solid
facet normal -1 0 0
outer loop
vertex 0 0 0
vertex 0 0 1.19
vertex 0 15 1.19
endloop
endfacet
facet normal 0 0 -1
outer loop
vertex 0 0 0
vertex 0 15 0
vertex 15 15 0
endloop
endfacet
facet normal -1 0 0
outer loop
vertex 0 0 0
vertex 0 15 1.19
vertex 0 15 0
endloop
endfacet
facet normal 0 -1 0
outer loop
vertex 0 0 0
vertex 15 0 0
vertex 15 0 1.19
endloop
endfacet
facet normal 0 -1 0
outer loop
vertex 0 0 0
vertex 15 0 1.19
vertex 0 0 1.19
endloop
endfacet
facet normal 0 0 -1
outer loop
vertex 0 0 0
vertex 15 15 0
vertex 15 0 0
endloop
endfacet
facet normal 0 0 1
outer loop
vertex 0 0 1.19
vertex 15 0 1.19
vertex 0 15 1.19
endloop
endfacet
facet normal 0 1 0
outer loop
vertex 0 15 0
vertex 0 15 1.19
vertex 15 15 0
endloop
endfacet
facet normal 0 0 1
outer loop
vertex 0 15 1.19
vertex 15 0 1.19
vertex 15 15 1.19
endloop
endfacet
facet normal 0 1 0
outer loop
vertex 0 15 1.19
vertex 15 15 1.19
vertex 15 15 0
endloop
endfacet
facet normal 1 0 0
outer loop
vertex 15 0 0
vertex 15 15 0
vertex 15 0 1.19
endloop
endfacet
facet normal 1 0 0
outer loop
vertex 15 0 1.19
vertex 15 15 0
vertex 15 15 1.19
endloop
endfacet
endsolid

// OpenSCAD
/* Warning, this is a very basic generator with a lot of approximation 
input data : [TFBGA, 8MX, 15x15x1.19mm, 208, , A, C04-00516A]
generated by com.zoubworld.electronics.cad.model3d.Basic
Date : Sun Feb 15 10:50:48 CET 2026
*/

//body
color("black")
translate([0,0,0])
cube([15.0,15.0,1.19], center=false);
